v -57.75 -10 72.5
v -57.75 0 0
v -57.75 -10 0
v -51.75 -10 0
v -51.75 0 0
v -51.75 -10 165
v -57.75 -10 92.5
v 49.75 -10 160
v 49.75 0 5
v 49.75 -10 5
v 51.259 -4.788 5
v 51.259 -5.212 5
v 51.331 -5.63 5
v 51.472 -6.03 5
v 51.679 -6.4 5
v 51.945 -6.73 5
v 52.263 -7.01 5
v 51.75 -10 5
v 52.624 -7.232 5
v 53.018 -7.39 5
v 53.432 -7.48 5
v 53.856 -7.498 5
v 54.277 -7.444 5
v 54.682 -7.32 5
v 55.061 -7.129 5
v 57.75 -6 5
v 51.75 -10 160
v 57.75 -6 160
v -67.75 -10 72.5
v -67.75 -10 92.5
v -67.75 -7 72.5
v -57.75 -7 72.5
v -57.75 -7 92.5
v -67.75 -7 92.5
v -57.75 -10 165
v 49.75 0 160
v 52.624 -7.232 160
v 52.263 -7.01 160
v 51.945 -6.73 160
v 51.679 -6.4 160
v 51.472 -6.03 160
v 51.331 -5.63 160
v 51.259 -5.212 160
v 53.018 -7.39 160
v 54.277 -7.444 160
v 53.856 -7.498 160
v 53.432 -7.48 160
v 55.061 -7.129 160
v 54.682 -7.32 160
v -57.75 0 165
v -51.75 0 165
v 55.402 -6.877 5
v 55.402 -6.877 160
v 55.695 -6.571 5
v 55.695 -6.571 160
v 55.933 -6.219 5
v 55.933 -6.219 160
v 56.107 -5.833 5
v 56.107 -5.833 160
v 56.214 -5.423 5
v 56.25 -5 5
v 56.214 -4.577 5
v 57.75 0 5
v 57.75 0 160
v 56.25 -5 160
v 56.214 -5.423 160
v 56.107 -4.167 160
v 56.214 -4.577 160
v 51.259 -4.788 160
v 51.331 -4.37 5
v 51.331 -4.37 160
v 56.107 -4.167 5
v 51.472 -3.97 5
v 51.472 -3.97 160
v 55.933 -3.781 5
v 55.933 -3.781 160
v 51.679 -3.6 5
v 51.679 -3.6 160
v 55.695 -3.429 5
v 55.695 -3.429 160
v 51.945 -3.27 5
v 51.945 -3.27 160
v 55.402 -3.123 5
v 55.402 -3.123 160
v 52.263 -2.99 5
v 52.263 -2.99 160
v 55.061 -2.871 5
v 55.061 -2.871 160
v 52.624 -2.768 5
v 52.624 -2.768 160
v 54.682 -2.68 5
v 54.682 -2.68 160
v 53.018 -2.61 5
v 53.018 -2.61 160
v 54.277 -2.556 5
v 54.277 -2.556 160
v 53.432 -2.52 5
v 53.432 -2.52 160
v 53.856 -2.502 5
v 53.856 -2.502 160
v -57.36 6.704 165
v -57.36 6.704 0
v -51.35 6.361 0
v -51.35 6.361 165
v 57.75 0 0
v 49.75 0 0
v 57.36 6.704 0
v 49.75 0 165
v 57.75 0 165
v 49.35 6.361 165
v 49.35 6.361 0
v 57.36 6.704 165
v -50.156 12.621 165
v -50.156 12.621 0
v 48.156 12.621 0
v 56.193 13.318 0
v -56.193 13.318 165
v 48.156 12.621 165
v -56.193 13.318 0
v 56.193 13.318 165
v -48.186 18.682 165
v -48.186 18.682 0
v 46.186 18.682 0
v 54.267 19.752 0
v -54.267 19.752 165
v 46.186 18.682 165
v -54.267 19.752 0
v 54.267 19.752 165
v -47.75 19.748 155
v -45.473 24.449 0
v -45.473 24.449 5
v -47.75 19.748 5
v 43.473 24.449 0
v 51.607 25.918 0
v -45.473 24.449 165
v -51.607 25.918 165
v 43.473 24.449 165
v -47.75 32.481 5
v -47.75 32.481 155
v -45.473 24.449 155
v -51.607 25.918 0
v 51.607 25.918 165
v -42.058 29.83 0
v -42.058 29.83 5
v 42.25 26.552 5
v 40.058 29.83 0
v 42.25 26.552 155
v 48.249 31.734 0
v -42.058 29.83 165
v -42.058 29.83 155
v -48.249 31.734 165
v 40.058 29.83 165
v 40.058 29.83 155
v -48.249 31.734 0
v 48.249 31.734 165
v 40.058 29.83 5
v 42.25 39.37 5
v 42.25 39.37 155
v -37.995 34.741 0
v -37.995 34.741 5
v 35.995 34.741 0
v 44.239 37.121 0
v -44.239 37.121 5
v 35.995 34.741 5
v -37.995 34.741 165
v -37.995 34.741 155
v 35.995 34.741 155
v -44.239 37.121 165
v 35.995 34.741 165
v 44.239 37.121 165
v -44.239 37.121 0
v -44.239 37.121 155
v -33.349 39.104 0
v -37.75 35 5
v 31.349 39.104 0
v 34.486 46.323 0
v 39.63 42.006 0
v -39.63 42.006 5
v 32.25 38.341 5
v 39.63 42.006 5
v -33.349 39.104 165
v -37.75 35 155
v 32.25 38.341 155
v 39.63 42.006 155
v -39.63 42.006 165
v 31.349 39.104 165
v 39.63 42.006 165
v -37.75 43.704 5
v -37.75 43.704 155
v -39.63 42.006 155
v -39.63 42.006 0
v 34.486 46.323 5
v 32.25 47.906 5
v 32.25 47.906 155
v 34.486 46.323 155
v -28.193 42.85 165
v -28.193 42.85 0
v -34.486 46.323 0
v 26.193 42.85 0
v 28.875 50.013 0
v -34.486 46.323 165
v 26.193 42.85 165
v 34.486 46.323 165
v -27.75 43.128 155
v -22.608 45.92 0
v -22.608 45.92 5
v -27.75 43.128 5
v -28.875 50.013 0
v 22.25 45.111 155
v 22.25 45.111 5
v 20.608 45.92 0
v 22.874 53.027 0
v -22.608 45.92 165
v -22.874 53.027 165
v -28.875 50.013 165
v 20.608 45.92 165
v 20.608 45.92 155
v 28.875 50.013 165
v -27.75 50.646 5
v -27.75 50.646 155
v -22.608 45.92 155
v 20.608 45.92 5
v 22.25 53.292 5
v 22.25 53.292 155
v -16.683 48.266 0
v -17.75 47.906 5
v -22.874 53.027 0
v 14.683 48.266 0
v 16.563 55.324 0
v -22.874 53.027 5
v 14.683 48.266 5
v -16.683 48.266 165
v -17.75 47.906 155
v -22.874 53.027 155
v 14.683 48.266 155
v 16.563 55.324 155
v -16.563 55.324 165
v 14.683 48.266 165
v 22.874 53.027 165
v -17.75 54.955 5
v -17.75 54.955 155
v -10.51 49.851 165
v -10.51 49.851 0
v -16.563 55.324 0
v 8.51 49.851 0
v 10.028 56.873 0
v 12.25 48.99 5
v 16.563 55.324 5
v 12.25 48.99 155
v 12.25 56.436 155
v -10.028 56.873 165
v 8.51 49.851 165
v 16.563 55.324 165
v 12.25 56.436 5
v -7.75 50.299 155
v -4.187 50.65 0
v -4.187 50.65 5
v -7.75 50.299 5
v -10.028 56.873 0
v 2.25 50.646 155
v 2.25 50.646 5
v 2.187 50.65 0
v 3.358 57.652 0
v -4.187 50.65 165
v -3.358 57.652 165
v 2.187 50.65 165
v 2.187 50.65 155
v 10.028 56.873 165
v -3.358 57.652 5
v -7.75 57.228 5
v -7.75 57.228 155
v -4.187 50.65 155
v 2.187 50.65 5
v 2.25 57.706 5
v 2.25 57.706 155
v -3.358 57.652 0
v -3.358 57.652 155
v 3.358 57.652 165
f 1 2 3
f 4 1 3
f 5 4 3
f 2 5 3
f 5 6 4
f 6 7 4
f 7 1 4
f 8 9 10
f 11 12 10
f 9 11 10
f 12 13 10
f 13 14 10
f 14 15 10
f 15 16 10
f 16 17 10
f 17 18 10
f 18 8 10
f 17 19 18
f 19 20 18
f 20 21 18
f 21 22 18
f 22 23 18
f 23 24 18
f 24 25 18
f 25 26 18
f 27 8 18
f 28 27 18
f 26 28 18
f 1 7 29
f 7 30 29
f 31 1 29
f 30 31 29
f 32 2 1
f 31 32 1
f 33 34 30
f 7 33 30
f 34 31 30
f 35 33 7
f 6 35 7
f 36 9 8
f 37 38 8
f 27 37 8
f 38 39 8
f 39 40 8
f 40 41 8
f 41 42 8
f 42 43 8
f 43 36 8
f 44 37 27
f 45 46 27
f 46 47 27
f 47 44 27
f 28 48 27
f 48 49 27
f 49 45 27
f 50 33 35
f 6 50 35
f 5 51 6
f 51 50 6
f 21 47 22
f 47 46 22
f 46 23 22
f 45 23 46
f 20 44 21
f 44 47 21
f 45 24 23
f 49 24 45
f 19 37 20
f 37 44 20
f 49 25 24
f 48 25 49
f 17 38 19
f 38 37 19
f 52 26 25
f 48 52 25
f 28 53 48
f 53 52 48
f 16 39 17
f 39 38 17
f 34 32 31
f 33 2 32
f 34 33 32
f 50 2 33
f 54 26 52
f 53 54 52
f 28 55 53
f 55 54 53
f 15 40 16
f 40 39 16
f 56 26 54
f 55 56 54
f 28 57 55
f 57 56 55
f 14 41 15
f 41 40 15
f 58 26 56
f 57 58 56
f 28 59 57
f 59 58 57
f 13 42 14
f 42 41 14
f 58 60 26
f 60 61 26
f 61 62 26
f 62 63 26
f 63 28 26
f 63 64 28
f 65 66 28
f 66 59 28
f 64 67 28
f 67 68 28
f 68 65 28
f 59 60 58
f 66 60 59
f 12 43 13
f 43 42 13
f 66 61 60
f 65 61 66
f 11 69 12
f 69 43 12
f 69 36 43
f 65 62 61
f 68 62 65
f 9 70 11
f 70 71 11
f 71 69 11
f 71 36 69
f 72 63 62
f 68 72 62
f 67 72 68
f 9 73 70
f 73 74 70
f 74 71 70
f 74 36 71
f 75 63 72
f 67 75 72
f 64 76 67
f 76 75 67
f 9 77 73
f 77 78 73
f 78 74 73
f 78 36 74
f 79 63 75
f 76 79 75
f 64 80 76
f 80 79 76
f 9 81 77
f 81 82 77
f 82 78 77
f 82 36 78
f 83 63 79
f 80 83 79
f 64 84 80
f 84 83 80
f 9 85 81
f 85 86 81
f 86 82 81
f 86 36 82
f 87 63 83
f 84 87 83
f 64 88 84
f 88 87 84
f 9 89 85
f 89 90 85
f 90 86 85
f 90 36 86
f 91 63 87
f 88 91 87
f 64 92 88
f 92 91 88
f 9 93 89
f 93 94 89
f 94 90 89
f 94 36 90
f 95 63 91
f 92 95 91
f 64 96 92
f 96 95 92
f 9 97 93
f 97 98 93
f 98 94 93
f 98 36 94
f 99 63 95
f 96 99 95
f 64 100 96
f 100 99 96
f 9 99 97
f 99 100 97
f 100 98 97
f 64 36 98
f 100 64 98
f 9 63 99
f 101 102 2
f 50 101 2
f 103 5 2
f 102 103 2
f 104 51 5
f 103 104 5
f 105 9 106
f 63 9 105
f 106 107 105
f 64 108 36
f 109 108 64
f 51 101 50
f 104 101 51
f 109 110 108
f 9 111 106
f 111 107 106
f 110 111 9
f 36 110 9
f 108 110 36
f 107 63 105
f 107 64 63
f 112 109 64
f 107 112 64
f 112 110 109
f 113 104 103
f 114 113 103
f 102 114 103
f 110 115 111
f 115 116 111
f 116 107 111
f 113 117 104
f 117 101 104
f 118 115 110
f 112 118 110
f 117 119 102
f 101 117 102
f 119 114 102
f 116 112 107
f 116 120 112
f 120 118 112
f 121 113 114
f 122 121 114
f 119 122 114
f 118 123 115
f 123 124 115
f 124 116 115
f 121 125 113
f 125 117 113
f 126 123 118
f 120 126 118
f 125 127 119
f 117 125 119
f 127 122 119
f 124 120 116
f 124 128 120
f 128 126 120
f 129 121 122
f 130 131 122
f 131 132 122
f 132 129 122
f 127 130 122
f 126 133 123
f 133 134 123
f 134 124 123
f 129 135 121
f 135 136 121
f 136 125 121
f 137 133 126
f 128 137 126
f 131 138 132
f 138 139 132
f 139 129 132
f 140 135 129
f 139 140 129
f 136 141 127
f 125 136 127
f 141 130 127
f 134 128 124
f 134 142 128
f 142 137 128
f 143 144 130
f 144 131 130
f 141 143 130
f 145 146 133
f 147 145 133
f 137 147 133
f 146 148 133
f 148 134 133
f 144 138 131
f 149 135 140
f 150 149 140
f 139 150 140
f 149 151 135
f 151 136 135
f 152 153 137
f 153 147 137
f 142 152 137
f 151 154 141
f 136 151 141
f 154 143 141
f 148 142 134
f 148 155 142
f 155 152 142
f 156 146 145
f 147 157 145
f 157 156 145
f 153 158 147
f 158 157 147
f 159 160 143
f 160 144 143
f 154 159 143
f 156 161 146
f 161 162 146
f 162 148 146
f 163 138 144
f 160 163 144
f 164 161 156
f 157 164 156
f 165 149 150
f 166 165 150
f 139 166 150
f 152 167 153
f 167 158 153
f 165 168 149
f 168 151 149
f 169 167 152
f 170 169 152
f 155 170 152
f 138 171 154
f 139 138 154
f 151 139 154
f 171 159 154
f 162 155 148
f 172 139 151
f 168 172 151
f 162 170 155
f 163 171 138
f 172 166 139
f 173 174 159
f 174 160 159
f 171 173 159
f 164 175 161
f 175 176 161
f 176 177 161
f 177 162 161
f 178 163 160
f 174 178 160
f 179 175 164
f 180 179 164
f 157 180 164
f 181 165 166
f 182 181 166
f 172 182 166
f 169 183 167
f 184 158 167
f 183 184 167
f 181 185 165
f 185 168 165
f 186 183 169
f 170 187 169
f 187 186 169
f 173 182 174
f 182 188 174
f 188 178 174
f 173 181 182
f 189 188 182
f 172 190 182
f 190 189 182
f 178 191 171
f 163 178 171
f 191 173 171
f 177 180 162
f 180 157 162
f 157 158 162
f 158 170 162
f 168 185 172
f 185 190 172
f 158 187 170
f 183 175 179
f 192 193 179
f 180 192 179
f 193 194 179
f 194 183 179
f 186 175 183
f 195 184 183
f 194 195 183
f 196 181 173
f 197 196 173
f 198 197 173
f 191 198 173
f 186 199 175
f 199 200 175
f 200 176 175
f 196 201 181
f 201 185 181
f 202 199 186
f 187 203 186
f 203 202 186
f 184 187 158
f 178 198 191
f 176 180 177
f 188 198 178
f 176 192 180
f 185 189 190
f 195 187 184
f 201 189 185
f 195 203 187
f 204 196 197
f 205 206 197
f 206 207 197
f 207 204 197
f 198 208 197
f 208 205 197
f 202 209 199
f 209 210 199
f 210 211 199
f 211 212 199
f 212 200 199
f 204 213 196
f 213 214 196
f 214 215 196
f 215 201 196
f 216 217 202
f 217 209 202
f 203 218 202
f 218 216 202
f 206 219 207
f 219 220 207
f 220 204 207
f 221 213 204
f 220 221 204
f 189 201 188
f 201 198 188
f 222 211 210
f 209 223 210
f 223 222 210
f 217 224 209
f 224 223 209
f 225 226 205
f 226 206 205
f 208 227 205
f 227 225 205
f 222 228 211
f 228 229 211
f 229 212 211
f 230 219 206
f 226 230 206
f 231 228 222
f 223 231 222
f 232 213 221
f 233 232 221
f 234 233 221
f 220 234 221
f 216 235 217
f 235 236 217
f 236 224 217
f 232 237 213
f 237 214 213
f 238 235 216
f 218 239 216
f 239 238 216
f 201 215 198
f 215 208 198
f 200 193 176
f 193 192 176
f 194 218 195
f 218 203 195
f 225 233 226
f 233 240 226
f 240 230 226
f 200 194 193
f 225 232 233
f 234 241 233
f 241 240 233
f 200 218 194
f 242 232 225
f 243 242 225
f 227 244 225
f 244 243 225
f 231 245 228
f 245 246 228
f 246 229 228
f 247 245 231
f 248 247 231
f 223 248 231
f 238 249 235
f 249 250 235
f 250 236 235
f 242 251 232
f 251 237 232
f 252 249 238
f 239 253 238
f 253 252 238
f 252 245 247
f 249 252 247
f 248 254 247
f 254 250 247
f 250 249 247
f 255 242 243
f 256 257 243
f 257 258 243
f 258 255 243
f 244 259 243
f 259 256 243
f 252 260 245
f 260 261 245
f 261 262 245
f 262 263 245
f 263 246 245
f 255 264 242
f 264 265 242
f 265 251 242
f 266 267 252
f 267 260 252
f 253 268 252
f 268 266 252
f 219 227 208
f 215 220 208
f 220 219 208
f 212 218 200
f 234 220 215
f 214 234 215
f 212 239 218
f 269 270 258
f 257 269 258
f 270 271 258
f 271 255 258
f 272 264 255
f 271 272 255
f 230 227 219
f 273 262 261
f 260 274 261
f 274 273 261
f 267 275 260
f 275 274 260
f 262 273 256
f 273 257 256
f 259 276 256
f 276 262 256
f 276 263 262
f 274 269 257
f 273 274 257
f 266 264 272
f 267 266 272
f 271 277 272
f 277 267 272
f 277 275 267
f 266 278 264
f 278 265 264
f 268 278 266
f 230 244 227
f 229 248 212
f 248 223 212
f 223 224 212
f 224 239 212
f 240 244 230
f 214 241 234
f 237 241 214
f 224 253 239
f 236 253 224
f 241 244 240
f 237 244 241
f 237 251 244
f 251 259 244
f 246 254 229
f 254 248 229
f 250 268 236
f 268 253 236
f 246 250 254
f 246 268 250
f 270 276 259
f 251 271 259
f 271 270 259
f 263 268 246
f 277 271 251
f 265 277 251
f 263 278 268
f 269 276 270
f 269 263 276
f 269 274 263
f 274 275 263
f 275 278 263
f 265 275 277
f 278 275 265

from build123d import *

# Parameters (mm, degrees)
EXTRUDE_1_DEPTH     = 165
SKETCH_2_W          = 10
SKETCH_2_H          = 150
CUT_EXTRUDE_1_DEPTH = 185.106287236
SKETCH_3_W          = 8
SKETCH_3_H          = 155
EXTRUDE_2_DEPTH     = 10
SKETCH_4_R          = 2.5
CUT_EXTRUDE_2_DEPTH = 180.638873855
SKETCH_5_W          = 20
SKETCH_5_H          = 3
EXTRUDE_3_DEPTH     = 10
CUT_EXTRUDE_3_DEPTH = 184.098675582


with BuildPart() as part:
    # 草圖1 → 填料-伸長1 (new body)
    with BuildSketch(Plane.XY):
        with BuildLine():
            Line((-57.75, 0), (-57.75, -10))
            Line((-57.75, -10), (-51.75, -10))
            Line((-51.75, -10), (-51.75, 0))
            ThreePointArc((-51.75, 0), (-1, 50.75), (49.75, 0))
            Line((49.75, 0), (57.75, 0))
            ThreePointArc((57.75, 0), (0, 57.75), (-57.75, 0))
        make_face()
    extrude(amount=EXTRUDE_1_DEPTH)

    # 草圖2 → 除料-伸長1 (cut, through all)
    with BuildSketch(Plane(origin=(0, 0, 0), x_dir=(1, 0, 0), z_dir=(0, 1, 0))):
        with Locations((-42.75, -80)):
            Rectangle(SKETCH_2_W, SKETCH_2_H)
        with Locations((-22.75, -80)):
            Rectangle(SKETCH_2_W, SKETCH_2_H)
        with Locations((-2.75, -80)):
            Rectangle(SKETCH_2_W, SKETCH_2_H)
        with Locations((17.25, -80)):
            Rectangle(SKETCH_2_W, SKETCH_2_H)
        with Locations((37.25, -80)):
            Rectangle(SKETCH_2_W, SKETCH_2_H)
    extrude(amount=CUT_EXTRUDE_1_DEPTH, mode=Mode.SUBTRACT)

    # 草圖3 → 填料-伸長2 (add)
    with BuildSketch(Plane.XZ):
        with Locations((53.75, 82.5)):
            Rectangle(SKETCH_3_W, SKETCH_3_H)
    extrude(amount=EXTRUDE_2_DEPTH)

    # 草圖4 → 除料-伸長2 (cut, through all)
    with BuildSketch(Plane.XY.offset(160)):
        with Locations((53.75, -5)):
            Circle(SKETCH_4_R)
    extrude(amount=-CUT_EXTRUDE_2_DEPTH, mode=Mode.SUBTRACT)

    # 草圖5 → 填料-伸長3 (add)
    with BuildSketch(Plane.ZY.offset(57.75)):
        with Locations((82.5, -8.5)):
            Rectangle(SKETCH_5_W, SKETCH_5_H)
    extrude(amount=EXTRUDE_3_DEPTH)

    # 草圖6 → 除料-伸長3 (cut, through all)
    with BuildSketch(Plane.XY.offset(160)):
        Polygon((57.75, -10), (57.75, -6), (51.75, -10), align=None)
    extrude(amount=-CUT_EXTRUDE_3_DEPTH, mode=Mode.SUBTRACT)


solid = part.part
